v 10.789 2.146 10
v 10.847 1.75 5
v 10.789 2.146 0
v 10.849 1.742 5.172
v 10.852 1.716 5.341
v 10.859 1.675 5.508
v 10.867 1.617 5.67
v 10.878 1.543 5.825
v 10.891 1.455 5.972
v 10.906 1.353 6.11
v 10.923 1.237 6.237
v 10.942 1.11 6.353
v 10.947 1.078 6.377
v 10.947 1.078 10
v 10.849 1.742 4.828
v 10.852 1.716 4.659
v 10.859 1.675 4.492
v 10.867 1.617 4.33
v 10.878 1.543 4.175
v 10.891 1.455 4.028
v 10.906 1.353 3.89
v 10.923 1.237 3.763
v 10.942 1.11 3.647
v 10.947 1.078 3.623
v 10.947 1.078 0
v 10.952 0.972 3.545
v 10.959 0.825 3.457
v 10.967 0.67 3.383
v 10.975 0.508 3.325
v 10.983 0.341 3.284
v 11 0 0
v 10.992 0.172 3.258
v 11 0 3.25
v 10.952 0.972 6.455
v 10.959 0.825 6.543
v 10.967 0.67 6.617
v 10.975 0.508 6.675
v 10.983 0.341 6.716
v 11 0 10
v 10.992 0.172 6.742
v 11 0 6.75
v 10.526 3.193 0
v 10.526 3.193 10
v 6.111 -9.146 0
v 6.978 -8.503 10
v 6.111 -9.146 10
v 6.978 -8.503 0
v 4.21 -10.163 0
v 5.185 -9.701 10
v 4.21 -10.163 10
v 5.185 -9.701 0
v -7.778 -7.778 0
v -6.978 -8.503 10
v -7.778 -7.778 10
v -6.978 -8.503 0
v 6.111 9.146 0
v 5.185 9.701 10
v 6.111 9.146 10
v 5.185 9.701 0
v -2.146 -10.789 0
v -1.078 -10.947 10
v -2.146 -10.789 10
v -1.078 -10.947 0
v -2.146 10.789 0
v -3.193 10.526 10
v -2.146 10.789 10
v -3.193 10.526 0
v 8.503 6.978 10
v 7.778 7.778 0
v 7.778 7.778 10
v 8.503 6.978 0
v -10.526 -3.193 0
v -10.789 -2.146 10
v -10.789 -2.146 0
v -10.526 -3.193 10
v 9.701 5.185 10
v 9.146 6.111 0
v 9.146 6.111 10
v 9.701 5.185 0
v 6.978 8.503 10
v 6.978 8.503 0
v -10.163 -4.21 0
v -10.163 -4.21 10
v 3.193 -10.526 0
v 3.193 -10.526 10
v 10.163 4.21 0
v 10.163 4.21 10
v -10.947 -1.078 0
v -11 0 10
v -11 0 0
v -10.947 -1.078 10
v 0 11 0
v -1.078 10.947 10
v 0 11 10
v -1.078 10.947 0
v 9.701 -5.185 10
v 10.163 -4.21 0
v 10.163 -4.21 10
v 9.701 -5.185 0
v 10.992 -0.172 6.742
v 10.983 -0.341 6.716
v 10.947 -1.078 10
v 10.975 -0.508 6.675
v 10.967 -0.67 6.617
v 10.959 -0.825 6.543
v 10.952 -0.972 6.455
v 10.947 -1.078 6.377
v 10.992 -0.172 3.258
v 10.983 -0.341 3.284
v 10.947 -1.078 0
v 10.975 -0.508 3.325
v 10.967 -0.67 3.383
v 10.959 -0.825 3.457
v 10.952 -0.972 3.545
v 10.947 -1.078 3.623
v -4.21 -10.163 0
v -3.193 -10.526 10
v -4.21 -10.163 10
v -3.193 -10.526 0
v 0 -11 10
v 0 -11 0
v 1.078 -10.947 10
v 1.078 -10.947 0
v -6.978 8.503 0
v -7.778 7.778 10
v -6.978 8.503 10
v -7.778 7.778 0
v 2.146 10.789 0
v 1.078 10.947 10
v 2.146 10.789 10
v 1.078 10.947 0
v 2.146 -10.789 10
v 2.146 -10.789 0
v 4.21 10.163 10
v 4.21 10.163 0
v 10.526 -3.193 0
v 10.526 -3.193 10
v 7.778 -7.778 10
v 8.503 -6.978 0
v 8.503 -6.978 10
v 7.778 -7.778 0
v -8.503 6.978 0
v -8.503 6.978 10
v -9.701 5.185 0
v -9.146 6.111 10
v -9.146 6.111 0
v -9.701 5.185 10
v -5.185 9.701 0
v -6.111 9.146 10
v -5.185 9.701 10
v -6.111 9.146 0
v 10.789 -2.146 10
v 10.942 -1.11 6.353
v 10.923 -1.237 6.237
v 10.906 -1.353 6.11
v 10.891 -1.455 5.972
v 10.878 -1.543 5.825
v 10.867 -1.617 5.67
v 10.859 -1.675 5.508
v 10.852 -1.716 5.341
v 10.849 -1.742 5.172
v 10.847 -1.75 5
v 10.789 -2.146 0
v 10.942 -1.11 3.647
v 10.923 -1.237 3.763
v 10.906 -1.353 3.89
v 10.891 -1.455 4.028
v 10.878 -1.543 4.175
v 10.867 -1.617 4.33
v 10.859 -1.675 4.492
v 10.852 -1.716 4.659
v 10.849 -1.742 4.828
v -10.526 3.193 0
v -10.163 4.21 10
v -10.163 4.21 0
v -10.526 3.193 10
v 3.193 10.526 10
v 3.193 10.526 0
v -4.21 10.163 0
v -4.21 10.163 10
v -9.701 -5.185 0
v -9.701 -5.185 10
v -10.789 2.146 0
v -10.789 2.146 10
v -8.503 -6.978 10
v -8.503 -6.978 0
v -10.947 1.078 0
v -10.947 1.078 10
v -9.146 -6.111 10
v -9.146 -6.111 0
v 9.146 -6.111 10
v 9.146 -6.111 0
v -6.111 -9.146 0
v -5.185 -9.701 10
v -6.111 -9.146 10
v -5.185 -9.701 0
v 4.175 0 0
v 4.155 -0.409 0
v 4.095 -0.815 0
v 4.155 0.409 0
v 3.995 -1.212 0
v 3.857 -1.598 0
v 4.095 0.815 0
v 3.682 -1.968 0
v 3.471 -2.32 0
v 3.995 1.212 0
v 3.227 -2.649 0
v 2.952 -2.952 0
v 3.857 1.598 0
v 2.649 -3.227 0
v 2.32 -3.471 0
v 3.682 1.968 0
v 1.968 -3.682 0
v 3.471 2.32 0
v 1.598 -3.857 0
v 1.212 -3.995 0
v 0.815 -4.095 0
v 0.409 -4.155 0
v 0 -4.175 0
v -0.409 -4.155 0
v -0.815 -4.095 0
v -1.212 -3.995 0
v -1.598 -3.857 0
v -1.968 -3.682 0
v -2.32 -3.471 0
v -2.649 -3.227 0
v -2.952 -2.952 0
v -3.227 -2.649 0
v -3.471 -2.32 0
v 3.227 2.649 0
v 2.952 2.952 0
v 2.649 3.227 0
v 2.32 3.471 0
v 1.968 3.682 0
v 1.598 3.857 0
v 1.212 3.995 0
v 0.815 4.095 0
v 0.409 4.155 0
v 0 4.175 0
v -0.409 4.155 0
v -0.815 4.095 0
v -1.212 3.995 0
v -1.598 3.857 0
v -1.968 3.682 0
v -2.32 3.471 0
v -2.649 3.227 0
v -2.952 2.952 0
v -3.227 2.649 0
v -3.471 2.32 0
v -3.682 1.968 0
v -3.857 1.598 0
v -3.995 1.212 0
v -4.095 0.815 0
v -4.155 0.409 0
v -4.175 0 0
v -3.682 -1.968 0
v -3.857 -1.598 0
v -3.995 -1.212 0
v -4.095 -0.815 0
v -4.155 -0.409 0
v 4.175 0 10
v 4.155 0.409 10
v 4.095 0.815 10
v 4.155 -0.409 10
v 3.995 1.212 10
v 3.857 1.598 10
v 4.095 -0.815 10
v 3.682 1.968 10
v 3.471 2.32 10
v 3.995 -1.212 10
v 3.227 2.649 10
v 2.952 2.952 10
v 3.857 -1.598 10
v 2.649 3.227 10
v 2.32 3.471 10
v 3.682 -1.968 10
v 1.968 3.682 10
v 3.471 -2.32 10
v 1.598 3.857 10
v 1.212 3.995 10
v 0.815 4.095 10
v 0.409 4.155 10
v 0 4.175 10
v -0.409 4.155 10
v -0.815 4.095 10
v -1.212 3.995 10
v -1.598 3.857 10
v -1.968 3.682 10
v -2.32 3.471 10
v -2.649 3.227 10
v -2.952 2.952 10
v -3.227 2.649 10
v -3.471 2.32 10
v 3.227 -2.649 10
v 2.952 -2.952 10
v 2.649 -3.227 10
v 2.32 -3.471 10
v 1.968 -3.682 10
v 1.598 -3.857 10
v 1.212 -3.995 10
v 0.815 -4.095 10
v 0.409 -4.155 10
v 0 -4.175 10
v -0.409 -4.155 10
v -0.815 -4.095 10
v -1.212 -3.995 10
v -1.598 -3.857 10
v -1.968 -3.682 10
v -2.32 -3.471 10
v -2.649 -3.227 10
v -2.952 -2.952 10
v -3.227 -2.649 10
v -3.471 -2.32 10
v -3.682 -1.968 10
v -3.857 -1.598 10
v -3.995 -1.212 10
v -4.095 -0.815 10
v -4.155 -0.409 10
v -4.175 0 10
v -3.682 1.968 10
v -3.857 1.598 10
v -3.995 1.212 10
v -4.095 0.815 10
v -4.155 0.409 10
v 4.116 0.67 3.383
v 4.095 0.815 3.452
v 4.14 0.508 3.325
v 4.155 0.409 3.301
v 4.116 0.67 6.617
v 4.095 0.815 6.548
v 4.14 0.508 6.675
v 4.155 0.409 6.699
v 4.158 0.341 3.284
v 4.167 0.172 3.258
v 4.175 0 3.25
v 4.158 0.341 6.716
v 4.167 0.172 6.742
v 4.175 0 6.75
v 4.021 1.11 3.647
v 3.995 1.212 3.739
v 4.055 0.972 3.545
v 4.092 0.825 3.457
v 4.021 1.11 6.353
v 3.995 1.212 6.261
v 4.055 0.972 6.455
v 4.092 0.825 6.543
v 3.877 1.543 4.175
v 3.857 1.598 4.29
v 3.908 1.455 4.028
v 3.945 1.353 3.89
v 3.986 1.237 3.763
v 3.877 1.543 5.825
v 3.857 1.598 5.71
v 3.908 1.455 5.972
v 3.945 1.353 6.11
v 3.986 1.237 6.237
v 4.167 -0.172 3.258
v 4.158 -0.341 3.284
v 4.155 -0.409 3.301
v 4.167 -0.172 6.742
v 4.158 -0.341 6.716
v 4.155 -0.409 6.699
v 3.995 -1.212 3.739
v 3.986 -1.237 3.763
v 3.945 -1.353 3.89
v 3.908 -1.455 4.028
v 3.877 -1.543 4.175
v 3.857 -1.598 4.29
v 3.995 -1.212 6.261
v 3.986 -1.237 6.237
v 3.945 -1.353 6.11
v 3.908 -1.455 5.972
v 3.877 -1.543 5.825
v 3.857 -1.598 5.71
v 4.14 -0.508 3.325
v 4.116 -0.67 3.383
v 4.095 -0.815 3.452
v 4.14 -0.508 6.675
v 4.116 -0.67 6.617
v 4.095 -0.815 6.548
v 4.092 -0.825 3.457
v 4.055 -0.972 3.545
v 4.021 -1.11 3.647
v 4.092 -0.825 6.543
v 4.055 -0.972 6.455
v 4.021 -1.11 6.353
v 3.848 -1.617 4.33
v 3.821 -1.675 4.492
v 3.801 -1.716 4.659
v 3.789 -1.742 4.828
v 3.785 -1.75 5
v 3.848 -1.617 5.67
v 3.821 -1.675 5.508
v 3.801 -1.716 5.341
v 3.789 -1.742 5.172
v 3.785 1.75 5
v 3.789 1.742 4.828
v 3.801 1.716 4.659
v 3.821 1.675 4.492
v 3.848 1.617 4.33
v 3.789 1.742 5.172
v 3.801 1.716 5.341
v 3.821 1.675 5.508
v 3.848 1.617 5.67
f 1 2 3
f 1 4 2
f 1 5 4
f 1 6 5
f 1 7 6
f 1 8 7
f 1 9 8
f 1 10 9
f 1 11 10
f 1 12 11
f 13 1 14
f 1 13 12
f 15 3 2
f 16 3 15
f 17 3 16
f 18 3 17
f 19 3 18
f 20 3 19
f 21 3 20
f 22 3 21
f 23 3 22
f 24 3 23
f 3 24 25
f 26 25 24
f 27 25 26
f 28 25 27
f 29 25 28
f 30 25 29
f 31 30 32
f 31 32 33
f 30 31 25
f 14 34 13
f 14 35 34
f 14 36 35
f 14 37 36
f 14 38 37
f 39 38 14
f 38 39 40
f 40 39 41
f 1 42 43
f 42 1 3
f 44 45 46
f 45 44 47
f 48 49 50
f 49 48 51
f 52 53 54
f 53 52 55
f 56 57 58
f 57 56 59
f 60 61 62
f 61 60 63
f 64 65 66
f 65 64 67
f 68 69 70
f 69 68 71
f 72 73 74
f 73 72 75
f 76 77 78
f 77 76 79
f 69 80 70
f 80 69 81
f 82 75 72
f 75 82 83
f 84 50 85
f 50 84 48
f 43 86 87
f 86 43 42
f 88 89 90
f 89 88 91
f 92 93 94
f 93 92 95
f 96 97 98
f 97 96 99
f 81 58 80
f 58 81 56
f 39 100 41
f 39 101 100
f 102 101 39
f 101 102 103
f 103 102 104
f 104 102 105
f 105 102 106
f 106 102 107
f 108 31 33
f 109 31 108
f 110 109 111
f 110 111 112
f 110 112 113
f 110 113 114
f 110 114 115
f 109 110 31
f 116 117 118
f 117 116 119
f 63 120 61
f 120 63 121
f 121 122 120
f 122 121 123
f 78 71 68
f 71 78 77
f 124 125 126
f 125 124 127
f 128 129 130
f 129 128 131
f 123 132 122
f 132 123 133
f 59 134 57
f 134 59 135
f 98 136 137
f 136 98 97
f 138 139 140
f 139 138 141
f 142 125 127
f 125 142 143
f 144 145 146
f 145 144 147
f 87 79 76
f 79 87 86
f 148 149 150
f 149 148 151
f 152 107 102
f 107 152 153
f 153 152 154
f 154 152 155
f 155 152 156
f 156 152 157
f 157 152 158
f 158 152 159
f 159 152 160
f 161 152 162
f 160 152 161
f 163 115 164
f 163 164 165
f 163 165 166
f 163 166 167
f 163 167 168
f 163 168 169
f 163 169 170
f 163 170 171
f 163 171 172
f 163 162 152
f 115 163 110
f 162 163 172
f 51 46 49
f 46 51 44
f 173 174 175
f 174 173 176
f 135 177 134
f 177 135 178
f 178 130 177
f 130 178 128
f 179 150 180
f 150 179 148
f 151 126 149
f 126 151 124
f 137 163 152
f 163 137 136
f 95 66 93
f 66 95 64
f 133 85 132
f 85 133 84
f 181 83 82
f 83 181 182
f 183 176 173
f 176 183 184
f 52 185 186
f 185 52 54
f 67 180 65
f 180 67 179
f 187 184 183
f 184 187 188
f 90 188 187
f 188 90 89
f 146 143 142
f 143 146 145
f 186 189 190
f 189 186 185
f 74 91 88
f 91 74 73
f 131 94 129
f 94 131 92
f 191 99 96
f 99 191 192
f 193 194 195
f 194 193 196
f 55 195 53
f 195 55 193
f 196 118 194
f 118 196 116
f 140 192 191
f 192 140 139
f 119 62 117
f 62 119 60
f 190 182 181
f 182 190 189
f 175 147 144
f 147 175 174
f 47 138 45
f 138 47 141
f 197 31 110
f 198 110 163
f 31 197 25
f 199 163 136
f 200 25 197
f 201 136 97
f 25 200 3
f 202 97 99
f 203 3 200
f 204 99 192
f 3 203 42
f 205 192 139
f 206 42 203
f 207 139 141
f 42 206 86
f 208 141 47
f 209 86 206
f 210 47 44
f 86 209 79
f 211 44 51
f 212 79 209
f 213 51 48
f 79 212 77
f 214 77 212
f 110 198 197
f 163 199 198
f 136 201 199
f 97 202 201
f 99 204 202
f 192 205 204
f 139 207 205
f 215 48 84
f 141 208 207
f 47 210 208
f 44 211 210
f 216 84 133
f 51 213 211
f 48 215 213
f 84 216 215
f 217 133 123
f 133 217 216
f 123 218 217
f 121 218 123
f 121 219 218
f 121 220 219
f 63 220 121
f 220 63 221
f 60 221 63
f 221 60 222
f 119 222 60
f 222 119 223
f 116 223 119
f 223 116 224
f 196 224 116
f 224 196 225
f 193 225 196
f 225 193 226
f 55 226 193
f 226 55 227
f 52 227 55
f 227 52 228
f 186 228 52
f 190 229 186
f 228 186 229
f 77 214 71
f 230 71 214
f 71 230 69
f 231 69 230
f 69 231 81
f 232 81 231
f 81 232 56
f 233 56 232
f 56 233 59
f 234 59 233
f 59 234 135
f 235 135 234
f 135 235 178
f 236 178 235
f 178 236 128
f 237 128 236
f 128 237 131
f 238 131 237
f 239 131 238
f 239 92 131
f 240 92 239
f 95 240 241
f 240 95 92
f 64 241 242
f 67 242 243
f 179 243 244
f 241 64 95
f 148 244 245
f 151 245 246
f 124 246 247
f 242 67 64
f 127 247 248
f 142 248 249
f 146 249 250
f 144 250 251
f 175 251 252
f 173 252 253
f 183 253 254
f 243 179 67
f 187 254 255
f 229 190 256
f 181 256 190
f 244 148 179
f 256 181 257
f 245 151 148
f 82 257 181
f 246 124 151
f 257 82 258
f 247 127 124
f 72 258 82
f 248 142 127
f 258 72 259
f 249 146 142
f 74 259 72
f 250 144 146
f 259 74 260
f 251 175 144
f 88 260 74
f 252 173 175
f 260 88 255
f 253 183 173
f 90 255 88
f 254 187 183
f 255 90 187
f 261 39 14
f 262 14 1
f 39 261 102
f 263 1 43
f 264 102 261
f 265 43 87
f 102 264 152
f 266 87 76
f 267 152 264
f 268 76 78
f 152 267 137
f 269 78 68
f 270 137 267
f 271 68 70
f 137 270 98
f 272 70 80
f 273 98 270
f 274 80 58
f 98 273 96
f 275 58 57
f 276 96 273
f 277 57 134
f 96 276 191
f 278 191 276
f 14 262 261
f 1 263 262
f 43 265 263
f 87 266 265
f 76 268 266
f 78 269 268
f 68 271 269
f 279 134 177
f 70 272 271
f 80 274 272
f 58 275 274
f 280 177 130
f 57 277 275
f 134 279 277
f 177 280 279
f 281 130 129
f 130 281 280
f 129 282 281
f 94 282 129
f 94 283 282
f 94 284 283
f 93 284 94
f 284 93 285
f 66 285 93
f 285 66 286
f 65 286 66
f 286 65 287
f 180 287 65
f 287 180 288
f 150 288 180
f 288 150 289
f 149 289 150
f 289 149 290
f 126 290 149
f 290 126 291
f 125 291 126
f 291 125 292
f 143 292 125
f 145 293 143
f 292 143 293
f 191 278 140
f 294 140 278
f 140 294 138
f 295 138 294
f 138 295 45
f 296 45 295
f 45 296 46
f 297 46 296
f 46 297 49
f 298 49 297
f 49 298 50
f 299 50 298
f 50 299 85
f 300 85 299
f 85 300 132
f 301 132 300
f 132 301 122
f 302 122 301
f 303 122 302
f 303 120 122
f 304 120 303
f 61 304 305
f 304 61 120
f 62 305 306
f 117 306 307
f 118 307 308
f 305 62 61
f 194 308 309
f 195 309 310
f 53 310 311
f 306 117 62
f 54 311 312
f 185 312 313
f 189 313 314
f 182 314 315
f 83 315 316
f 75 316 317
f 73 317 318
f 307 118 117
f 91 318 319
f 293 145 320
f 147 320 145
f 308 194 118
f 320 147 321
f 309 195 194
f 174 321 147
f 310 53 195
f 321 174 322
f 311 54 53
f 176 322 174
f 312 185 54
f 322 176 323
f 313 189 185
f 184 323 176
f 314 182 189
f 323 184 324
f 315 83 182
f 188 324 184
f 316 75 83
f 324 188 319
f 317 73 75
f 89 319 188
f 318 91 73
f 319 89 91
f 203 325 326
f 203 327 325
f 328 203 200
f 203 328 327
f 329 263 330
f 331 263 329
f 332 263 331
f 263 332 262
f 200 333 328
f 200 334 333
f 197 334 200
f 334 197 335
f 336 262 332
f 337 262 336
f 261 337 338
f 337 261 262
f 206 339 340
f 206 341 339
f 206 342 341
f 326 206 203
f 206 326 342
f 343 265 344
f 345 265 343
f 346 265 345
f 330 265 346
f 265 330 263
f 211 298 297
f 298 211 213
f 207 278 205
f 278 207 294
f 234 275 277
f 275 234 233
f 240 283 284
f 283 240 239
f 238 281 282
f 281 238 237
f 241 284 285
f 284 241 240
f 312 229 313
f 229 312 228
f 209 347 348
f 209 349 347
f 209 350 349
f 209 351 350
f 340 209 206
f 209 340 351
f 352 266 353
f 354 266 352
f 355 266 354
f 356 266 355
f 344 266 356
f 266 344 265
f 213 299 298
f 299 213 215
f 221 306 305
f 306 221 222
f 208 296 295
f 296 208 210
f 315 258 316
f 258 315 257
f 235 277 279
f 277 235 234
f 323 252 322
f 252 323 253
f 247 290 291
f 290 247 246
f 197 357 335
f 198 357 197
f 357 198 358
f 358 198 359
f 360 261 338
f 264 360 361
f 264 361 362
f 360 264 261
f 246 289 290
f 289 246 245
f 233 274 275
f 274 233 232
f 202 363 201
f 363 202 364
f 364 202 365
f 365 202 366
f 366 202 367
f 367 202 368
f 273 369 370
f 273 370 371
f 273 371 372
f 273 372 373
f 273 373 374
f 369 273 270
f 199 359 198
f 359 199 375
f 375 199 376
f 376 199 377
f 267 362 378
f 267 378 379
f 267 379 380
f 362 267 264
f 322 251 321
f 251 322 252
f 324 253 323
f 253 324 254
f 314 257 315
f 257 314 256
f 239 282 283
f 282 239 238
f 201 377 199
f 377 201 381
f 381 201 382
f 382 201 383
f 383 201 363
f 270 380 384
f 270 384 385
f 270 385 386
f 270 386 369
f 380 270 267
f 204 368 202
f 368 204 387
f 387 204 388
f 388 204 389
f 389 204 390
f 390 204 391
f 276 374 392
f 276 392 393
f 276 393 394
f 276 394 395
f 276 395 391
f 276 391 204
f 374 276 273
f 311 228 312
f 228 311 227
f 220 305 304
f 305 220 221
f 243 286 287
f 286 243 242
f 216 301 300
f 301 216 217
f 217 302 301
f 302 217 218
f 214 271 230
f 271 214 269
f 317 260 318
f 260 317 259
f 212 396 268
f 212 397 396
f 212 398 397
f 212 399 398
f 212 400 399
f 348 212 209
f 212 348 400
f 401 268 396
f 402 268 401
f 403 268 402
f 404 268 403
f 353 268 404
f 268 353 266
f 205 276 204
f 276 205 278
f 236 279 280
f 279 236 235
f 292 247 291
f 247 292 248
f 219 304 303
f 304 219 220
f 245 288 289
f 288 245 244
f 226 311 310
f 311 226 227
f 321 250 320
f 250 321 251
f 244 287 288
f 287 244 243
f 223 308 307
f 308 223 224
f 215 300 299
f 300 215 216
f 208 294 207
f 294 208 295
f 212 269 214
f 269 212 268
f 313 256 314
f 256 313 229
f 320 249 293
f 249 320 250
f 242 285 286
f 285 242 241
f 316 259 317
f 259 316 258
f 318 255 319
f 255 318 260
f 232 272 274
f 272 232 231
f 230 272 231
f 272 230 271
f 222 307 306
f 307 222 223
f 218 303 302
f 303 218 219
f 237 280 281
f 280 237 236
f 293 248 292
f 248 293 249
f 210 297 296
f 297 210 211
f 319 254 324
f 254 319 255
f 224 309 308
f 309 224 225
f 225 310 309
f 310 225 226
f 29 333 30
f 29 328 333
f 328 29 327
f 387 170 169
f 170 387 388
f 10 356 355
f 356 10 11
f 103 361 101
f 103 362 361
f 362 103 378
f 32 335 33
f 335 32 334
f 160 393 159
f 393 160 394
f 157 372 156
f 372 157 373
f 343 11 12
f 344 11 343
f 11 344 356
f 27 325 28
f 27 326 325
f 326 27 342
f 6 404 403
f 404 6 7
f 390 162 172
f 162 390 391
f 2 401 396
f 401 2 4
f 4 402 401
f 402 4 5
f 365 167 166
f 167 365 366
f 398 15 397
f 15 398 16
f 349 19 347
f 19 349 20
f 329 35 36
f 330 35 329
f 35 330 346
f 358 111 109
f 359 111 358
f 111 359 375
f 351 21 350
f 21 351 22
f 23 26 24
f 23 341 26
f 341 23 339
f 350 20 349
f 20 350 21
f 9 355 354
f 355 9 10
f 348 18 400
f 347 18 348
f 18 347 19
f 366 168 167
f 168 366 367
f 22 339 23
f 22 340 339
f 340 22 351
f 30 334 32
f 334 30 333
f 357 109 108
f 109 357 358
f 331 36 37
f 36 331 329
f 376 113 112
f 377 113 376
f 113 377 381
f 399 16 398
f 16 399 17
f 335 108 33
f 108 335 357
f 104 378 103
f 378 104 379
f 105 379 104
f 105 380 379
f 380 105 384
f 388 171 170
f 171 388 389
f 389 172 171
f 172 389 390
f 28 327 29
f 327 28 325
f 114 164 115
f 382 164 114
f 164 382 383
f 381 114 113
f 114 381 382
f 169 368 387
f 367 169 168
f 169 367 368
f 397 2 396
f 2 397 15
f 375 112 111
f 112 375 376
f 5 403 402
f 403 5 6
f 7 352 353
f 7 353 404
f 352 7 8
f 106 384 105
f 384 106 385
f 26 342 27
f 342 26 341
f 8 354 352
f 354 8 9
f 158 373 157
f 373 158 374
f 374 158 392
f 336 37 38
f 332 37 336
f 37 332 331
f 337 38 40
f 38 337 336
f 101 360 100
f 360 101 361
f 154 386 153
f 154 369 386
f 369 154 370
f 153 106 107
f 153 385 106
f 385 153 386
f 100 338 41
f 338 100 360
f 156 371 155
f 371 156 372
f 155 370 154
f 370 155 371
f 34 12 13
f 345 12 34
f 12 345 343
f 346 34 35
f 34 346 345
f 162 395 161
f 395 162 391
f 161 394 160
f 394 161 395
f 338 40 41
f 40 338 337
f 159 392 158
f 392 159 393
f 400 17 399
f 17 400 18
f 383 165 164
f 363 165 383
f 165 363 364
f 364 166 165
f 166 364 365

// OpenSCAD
// file: parameters.scad
// =============================================================================
// Gen-Z Dual-stator mid-rotor Halbach sandwich — WOUND-AWARE (HARD GATE)
// ONE mid rotor (magnets both faces) | TWO wound pancake stators | outer endbells
// =============================================================================

wire_awg            = 26;
wire_od             = 0.45;
turns               = 115;      // 9 coils/stator ×2 = 18 ×115 ×~0.11 ≈ 228 m
fill                = 0.70;
layers_per_face     = 2;
wind_build_axial    = layers_per_face * wire_od * fill;   // 0.63
wind_build_radial   = 2.8 * wire_od * fill;               // 0.882

coil_id_r           = 22.0;
coil_od_r           = 58.0;
span_deg            = 34.0;     // 9 stations × 40°
former_web          = 1.9;
flange_t            = 0.70;
wall                = 1.2;
slot_w              = 2.4;
mount_hole          = 3.5;
tab_len             = 7.0;

former_bare_h       = former_web + 2 * flange_t;            // 3.3
coil_envelope_h     = former_bare_h + 2 * wind_build_axial; // 4.56

run_clear           = 0.65;
gap_spacer_h        = run_clear + wind_build_axial;         // 1.28
m2m                 = coil_envelope_h + 2 * run_clear;      // 5.86 per gap

coil_stations       = 9;        // per stator; ×2 = 18 total
bay_r_in            = coil_id_r - 2.0 - wind_build_radial;
bay_r_out           = coil_od_r + 2.0 + wind_build_radial;
bay_span            = span_deg + 4.0;
bay_offset          = 2.0;
bay_depth           = former_bare_h + wind_build_axial;
stator_back_web     = 2.0;
stator_thick        = bay_depth + stator_back_web;
stator_od           = 156.0;
shaft_clear_stator  = 40.0;
coil_mount_r        = 30.0;

large_pocket_d      = 20.3;
small_pocket_d      = 5.3;
pocket_h            = 5.2;
large_n             = 8;
R_large             = 52.0;
R_small_inner       = 40.0;
R_small_mid         = 52.0;
R_small_outer       = 64.0;
carrier_od          = 152.0;
mid_carrier_thick   = 12.0;
hub_h               = 10.0;
hub_od              = 30.0;
rotor_b_offset_deg  = 22.5;

shaft_bore          = 8.35;
bearing_d           = 21.85;
bearing_h           = 7.2;
m3_clear            = 3.5;
bolt_r_inner        = 36.0;
bolt_n_inner        = 6;
flange_bolt_r       = 72.0;
flange_bolt_n       = 6;
brace_r             = 68.0;
brace_d             = 4.3;
brace_n             = 4;

spacer_pad_od       = 14.0;
spacer_pad_id       = m3_clear;
endbell_od          = 156.0;
endbell_thick       = 8.0;
endbell_shaft_clear = 10.0;

$fn = 64;
// main file
// Gen-Z shaft collar — print ×2–4
include <parameters.scad>;
$fn = 64;
od = 22; id = shaft_bore; h = 10; set_d = 3.5;
difference() {
    cylinder(d=od, h=h);
    translate([0, 0, -0.1]) cylinder(d=id, h=h + 0.2);
    translate([0, 0, h/2]) rotate([0, 90, 0]) cylinder(d=set_d, h=od);
}
